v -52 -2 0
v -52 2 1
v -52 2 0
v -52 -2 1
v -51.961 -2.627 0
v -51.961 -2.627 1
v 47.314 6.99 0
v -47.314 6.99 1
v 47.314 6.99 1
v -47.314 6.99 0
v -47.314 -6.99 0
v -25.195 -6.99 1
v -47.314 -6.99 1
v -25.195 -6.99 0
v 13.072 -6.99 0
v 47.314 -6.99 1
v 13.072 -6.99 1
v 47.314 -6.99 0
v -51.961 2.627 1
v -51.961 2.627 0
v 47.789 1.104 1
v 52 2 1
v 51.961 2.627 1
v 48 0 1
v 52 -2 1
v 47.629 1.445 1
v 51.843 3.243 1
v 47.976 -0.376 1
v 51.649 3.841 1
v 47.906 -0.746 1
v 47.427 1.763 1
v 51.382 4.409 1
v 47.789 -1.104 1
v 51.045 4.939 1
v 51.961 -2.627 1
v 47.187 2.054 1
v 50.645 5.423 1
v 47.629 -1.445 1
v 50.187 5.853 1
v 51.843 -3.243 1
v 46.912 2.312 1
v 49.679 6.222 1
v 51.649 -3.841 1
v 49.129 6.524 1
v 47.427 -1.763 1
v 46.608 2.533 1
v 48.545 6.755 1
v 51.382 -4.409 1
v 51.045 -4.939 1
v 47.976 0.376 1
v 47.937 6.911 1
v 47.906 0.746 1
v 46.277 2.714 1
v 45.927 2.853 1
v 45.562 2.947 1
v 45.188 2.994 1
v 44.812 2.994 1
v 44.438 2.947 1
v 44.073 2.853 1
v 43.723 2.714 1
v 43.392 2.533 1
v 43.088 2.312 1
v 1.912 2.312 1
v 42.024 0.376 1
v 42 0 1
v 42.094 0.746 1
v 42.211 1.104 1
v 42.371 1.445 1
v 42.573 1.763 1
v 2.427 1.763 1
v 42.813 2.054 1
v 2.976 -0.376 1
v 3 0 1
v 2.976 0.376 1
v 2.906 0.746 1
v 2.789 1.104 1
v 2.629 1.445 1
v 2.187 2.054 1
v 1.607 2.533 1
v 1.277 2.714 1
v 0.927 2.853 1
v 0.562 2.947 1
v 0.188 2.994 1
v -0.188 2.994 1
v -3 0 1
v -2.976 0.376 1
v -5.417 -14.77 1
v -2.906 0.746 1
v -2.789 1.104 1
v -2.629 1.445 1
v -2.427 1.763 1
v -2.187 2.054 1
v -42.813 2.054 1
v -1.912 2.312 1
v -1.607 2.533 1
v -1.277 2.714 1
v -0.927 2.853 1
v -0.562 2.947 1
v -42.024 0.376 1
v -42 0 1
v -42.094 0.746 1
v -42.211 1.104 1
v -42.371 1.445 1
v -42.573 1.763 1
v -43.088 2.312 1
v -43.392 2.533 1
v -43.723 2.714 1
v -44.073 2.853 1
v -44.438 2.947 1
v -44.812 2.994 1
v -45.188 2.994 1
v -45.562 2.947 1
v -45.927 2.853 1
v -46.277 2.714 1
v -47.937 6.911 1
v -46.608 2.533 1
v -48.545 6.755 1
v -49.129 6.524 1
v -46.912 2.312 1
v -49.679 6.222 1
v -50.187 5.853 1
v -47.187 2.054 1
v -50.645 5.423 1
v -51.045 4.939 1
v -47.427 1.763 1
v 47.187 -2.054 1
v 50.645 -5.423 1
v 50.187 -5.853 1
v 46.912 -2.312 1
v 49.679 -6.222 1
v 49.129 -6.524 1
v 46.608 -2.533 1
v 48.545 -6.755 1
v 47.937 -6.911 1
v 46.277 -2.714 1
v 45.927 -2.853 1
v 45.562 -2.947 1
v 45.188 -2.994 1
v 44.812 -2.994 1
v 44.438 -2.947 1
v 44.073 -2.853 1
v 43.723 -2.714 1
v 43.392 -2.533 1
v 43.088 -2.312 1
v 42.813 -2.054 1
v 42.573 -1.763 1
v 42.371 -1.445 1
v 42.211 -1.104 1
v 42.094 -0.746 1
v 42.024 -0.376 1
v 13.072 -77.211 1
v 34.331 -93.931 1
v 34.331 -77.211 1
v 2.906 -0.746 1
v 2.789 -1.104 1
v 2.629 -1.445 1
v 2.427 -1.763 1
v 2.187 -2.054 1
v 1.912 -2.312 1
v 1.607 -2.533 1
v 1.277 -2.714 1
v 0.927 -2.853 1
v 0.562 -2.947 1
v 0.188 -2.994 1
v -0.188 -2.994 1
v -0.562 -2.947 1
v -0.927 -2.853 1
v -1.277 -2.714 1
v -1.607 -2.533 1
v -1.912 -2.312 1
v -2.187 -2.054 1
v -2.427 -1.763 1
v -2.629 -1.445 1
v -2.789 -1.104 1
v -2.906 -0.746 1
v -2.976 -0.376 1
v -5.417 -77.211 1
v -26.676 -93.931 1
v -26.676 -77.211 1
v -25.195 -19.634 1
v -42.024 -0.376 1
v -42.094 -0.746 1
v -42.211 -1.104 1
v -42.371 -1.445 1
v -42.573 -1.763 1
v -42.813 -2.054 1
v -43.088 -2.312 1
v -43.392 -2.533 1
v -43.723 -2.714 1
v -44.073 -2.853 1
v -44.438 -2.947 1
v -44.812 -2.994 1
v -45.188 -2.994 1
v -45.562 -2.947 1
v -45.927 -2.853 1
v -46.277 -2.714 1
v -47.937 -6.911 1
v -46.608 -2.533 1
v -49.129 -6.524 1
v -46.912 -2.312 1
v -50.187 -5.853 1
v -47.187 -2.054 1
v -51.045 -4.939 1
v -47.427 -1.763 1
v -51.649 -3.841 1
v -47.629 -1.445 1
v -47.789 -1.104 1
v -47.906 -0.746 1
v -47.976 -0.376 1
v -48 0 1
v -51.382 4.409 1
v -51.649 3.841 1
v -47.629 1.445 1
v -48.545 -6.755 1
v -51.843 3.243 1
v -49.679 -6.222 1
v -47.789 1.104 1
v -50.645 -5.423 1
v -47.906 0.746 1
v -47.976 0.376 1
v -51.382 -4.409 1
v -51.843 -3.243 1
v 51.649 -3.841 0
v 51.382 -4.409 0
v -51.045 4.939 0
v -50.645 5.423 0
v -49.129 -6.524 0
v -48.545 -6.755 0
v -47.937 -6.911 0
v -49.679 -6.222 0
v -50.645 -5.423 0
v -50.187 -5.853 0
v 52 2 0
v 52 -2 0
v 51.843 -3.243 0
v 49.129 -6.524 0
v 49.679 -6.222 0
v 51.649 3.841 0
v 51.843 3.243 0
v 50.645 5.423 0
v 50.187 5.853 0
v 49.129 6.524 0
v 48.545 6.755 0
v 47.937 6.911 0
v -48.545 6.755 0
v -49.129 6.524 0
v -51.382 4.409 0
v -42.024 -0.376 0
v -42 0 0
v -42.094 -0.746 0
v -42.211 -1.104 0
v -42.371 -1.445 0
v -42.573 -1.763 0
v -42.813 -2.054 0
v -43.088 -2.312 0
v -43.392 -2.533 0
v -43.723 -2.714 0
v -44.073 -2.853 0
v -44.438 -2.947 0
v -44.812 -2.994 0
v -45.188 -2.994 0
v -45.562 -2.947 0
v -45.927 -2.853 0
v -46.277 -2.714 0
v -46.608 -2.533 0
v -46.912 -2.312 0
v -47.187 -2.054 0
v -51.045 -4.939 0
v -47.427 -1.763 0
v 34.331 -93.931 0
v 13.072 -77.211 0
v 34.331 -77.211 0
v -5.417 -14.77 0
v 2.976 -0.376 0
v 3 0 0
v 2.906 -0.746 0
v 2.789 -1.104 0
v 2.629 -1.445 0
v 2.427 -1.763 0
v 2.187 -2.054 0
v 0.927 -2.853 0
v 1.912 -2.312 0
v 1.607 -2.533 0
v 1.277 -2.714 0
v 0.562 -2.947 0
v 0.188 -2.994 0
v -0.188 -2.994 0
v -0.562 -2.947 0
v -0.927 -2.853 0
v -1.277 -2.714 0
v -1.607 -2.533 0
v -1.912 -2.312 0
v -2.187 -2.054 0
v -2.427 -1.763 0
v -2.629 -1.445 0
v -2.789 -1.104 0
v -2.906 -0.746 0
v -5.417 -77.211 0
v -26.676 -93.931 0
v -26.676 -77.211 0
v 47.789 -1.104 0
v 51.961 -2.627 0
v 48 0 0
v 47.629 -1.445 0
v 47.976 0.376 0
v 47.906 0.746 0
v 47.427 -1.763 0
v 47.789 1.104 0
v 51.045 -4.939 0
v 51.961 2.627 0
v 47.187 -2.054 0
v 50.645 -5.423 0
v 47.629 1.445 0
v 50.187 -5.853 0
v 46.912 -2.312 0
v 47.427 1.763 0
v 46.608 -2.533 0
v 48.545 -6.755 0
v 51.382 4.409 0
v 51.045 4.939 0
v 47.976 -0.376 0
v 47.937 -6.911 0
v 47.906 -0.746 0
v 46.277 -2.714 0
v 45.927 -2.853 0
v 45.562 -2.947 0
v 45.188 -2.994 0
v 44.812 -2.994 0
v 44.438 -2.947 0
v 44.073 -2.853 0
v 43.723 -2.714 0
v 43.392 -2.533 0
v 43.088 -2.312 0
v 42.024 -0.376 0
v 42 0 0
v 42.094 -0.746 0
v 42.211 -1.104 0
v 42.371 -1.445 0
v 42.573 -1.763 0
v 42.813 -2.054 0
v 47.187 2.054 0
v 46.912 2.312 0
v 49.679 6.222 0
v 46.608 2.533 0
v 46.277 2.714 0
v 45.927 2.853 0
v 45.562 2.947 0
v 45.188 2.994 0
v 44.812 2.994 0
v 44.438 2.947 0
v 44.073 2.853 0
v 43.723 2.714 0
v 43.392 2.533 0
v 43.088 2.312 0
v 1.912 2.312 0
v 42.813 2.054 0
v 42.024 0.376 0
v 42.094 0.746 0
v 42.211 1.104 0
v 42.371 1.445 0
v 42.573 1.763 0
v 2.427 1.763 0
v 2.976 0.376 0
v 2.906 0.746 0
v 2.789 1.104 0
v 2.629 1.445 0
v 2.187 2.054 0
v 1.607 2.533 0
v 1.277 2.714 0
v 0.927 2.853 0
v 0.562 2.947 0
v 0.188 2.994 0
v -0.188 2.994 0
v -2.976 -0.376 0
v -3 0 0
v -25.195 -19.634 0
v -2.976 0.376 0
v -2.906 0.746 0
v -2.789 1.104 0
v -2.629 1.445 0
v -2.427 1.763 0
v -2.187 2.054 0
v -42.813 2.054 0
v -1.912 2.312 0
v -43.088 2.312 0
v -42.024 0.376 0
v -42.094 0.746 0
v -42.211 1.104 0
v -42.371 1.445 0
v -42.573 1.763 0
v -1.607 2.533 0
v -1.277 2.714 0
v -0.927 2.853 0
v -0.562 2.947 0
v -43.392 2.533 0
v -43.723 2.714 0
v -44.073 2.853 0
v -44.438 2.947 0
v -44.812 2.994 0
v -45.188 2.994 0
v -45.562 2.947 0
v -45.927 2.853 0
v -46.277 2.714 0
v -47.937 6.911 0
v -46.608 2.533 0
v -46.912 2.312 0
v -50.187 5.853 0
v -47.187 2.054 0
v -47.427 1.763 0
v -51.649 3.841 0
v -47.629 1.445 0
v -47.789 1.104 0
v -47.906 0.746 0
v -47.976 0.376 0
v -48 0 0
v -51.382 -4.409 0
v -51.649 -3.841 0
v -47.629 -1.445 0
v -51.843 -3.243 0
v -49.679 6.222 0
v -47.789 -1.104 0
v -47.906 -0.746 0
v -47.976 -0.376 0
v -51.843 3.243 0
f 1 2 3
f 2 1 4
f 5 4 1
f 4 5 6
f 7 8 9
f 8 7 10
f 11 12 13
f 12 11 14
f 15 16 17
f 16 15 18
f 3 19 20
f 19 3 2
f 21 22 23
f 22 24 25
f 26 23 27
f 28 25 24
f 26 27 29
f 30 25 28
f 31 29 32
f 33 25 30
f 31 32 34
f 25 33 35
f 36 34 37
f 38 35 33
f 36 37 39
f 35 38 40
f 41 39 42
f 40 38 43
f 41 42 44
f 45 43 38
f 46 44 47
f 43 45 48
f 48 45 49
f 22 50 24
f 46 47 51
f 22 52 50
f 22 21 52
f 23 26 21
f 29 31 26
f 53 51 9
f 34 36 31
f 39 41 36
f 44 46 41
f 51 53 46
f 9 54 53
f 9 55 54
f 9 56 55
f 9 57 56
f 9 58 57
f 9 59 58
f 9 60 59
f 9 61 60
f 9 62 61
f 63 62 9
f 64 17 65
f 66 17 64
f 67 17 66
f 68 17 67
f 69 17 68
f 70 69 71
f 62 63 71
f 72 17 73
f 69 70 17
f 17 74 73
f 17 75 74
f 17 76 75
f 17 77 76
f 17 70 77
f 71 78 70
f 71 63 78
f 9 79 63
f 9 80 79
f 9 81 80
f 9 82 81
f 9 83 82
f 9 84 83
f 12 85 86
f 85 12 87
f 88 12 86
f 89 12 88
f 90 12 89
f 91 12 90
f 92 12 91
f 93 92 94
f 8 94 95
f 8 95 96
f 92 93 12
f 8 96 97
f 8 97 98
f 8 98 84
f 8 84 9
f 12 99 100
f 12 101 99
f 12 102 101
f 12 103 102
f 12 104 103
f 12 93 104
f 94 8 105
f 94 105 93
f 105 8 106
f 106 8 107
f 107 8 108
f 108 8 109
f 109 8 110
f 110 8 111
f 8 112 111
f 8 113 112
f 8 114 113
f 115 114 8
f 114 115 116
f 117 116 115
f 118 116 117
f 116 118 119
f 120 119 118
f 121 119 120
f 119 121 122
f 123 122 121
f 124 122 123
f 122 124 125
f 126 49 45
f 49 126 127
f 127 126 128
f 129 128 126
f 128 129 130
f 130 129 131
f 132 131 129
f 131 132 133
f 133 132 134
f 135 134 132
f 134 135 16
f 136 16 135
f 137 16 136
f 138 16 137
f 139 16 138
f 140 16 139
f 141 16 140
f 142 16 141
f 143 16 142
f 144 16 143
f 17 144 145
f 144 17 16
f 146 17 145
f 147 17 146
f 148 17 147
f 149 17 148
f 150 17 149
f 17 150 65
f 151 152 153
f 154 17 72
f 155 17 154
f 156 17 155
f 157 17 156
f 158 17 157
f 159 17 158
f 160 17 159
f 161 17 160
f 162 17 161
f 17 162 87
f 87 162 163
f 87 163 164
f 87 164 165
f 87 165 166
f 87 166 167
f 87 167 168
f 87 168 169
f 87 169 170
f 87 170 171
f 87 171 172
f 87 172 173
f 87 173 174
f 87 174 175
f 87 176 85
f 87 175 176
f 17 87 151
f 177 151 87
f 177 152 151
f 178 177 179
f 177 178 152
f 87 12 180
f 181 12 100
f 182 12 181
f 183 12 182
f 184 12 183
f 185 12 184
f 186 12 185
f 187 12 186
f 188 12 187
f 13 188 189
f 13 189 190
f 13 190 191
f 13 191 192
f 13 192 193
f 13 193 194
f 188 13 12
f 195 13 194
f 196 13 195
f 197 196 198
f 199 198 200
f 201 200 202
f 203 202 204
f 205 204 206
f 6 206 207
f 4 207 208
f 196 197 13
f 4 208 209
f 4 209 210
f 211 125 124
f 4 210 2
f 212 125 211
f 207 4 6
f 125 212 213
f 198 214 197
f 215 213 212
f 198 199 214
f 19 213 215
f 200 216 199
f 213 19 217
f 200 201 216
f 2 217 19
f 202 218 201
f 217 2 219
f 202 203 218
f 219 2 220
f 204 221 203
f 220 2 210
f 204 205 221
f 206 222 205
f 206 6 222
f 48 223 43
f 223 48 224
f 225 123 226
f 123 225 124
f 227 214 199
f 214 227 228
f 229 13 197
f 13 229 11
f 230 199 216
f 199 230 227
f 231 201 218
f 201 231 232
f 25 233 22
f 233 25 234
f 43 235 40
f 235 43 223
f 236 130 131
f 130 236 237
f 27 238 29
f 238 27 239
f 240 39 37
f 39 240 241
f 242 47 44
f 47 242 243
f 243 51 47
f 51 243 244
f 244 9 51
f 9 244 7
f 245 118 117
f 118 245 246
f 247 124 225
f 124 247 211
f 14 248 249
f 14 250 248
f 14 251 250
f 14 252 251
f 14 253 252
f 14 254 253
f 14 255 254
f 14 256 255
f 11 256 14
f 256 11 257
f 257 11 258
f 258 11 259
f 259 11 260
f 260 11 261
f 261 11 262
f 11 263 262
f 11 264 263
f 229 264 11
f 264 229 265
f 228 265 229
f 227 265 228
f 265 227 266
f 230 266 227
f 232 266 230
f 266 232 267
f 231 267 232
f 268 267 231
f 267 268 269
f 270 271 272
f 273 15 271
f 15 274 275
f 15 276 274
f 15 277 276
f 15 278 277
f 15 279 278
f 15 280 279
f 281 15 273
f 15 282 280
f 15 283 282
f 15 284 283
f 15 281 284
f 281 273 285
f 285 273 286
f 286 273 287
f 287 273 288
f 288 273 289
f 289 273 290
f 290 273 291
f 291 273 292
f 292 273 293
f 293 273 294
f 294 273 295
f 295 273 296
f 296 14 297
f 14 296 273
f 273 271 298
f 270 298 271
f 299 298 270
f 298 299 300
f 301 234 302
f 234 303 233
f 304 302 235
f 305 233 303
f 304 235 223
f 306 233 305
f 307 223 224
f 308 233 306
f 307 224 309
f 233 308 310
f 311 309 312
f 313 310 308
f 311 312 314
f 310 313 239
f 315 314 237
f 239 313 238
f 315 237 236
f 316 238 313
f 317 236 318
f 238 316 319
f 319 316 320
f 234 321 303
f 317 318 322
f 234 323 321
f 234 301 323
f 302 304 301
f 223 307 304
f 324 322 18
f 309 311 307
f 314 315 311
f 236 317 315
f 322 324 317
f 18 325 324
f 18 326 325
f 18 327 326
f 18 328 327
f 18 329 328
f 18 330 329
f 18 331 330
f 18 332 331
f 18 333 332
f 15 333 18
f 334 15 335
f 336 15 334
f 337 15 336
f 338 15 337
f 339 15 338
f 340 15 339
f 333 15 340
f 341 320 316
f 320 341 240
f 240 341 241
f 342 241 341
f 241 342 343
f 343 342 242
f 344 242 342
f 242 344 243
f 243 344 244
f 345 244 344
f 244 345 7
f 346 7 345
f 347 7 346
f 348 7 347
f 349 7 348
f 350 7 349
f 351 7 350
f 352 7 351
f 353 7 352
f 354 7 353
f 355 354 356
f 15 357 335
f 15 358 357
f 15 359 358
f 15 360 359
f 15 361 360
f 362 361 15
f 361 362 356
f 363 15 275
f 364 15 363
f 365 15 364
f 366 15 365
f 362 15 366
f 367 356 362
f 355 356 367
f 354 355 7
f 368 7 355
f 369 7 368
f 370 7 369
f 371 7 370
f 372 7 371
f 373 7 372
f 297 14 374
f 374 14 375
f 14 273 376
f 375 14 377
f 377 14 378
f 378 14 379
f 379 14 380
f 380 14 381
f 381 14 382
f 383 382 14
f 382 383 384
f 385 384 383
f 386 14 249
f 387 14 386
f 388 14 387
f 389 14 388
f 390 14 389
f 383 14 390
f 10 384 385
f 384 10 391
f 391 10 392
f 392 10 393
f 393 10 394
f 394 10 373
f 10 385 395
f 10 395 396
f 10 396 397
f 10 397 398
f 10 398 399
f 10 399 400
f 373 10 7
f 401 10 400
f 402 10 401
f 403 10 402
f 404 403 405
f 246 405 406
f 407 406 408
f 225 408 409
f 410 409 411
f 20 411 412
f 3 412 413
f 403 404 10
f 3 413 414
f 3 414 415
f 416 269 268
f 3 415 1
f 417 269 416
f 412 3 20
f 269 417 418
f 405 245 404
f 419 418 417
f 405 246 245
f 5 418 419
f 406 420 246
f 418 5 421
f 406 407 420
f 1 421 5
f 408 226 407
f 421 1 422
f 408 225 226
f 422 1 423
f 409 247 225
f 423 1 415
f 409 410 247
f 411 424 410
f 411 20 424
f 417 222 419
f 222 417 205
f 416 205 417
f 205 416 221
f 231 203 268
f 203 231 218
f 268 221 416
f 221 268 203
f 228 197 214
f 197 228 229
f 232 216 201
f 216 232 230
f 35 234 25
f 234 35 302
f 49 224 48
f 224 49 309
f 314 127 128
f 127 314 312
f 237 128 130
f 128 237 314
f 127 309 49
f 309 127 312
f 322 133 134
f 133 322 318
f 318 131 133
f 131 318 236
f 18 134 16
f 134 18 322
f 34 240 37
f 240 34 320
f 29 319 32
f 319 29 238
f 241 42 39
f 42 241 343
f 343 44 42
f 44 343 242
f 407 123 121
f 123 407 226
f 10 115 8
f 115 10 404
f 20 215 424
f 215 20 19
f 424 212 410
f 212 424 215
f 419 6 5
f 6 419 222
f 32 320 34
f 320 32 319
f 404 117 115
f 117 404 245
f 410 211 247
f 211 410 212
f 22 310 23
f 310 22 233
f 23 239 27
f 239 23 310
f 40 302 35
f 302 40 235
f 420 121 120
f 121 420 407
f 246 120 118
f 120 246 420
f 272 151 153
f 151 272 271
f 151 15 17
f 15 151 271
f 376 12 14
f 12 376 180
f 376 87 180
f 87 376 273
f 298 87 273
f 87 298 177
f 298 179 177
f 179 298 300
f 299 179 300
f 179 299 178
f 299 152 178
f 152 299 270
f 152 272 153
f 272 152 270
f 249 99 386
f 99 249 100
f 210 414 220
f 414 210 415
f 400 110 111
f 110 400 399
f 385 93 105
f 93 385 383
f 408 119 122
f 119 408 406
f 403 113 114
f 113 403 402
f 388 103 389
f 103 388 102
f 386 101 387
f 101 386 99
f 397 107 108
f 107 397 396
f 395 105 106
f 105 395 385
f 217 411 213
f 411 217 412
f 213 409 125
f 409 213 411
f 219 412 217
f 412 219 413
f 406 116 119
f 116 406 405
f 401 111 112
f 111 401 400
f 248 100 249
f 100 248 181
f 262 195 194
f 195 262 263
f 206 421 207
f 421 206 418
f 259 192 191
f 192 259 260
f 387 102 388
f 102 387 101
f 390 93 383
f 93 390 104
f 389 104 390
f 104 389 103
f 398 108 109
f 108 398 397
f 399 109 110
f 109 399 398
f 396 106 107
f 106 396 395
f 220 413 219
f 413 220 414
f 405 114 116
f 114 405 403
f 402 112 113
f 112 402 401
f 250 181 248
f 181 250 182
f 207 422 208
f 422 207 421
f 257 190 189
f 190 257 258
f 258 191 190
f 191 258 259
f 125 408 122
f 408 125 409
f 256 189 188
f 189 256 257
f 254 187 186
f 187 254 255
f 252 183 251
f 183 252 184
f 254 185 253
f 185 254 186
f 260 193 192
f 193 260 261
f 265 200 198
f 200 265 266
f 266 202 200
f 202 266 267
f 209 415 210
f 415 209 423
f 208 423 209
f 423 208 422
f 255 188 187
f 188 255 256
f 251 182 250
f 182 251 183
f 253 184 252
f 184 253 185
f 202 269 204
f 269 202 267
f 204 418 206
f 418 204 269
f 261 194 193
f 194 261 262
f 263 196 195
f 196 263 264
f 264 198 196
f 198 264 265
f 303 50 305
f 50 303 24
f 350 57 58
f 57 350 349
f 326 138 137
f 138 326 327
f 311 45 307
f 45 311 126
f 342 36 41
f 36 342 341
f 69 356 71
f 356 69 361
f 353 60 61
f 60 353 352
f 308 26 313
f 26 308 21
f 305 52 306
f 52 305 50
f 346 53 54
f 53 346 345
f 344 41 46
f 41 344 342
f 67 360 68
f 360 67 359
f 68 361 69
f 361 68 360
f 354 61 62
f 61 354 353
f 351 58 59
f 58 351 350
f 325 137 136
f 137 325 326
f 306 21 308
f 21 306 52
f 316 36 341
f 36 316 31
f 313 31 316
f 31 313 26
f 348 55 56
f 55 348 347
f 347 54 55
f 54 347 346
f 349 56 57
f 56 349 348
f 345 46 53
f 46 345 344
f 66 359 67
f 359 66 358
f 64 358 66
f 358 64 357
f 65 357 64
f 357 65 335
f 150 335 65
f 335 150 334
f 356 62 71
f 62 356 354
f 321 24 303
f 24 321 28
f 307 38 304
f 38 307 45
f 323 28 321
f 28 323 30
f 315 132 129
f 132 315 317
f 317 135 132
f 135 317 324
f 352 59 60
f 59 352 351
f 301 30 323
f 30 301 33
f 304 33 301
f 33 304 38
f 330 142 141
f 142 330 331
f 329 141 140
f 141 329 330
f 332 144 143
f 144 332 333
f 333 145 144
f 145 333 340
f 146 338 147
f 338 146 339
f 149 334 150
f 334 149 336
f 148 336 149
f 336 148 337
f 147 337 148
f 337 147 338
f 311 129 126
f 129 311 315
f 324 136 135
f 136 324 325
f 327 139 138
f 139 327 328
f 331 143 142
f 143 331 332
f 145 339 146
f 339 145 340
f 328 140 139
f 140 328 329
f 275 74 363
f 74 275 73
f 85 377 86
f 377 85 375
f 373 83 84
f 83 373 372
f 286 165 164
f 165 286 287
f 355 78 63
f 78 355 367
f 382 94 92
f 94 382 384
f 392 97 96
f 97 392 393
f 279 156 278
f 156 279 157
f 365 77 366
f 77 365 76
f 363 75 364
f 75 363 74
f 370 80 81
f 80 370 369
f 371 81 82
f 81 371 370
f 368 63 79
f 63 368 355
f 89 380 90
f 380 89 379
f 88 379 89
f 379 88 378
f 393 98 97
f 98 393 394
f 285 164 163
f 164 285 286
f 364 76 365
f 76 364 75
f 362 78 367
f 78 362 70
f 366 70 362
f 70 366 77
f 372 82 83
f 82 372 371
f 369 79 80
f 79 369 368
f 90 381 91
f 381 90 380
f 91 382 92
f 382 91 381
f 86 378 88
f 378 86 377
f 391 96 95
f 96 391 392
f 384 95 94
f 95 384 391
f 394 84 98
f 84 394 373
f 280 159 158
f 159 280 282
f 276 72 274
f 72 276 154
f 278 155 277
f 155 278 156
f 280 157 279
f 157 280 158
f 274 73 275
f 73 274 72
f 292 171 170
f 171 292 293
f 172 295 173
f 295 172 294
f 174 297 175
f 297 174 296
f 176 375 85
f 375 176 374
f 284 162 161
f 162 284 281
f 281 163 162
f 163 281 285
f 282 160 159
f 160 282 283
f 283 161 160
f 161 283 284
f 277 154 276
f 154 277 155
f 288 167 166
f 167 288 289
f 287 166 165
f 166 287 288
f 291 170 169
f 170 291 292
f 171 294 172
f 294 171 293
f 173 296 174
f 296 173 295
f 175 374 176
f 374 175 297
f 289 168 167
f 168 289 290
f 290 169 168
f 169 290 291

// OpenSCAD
$fn = 50;


difference() {
	union() {
		translate(v = [0, 0, 0]) {
			rotate(a = [0, 0, 0]) {
				hull() {
					translate(v = [-47.0000000000, 2.0000000000, 0]) {
						rotate(a = [0, 0, 0]) {
							translate(v = [0, 0, 0]) {
								rotate(a = [0, 0, 0]) {
									cylinder(h = 1, r = 5);
								}
							}
						}
					}
					translate(v = [47.0000000000, 2.0000000000, 0]) {
						rotate(a = [0, 0, 0]) {
							translate(v = [0, 0, 0]) {
								rotate(a = [0, 0, 0]) {
									cylinder(h = 1, r = 5);
								}
							}
						}
					}
					translate(v = [-47.0000000000, -2.0000000000, 0]) {
						rotate(a = [0, 0, 0]) {
							translate(v = [0, 0, 0]) {
								rotate(a = [0, 0, 0]) {
									cylinder(h = 1, r = 5);
								}
							}
						}
					}
					translate(v = [47.0000000000, -2.0000000000, 0]) {
						rotate(a = [0, 0, 0]) {
							translate(v = [0, 0, 0]) {
								rotate(a = [0, 0, 0]) {
									cylinder(h = 1, r = 5);
								}
							}
						}
					}
				}
			}
		}
		translate(v = [0, 0, 0]) {
			rotate(a = [0, 0, 0]) {
				linear_extrude(height = 1) {
					text(font = "DejaVu Sans Mono:style=Bold", halign = "center", size = 95, text = "1", valign = "top");
				}
			}
		}
	}
	union() {
		translate(v = [-45.0000000000, 0.0000000000, -125.0000000000]) {
			rotate(a = [0, 0, 0]) {
				cylinder(h = 250, r = 3.0000000000);
			}
		}
		translate(v = [45.0000000000, 0.0000000000, -125.0000000000]) {
			rotate(a = [0, 0, 0]) {
				cylinder(h = 250, r = 3.0000000000);
			}
		}
		translate(v = [45.0000000000, 0.0000000000, -125.0000000000]) {
			rotate(a = [0, 0, 0]) {
				cylinder(h = 250, r = 3.0000000000);
			}
		}
		translate(v = [0, 0, -125.0000000000]) {
			rotate(a = [0, 0, 0]) {
				cylinder(h = 250, r = 3.0000000000);
			}
		}
	}
}
